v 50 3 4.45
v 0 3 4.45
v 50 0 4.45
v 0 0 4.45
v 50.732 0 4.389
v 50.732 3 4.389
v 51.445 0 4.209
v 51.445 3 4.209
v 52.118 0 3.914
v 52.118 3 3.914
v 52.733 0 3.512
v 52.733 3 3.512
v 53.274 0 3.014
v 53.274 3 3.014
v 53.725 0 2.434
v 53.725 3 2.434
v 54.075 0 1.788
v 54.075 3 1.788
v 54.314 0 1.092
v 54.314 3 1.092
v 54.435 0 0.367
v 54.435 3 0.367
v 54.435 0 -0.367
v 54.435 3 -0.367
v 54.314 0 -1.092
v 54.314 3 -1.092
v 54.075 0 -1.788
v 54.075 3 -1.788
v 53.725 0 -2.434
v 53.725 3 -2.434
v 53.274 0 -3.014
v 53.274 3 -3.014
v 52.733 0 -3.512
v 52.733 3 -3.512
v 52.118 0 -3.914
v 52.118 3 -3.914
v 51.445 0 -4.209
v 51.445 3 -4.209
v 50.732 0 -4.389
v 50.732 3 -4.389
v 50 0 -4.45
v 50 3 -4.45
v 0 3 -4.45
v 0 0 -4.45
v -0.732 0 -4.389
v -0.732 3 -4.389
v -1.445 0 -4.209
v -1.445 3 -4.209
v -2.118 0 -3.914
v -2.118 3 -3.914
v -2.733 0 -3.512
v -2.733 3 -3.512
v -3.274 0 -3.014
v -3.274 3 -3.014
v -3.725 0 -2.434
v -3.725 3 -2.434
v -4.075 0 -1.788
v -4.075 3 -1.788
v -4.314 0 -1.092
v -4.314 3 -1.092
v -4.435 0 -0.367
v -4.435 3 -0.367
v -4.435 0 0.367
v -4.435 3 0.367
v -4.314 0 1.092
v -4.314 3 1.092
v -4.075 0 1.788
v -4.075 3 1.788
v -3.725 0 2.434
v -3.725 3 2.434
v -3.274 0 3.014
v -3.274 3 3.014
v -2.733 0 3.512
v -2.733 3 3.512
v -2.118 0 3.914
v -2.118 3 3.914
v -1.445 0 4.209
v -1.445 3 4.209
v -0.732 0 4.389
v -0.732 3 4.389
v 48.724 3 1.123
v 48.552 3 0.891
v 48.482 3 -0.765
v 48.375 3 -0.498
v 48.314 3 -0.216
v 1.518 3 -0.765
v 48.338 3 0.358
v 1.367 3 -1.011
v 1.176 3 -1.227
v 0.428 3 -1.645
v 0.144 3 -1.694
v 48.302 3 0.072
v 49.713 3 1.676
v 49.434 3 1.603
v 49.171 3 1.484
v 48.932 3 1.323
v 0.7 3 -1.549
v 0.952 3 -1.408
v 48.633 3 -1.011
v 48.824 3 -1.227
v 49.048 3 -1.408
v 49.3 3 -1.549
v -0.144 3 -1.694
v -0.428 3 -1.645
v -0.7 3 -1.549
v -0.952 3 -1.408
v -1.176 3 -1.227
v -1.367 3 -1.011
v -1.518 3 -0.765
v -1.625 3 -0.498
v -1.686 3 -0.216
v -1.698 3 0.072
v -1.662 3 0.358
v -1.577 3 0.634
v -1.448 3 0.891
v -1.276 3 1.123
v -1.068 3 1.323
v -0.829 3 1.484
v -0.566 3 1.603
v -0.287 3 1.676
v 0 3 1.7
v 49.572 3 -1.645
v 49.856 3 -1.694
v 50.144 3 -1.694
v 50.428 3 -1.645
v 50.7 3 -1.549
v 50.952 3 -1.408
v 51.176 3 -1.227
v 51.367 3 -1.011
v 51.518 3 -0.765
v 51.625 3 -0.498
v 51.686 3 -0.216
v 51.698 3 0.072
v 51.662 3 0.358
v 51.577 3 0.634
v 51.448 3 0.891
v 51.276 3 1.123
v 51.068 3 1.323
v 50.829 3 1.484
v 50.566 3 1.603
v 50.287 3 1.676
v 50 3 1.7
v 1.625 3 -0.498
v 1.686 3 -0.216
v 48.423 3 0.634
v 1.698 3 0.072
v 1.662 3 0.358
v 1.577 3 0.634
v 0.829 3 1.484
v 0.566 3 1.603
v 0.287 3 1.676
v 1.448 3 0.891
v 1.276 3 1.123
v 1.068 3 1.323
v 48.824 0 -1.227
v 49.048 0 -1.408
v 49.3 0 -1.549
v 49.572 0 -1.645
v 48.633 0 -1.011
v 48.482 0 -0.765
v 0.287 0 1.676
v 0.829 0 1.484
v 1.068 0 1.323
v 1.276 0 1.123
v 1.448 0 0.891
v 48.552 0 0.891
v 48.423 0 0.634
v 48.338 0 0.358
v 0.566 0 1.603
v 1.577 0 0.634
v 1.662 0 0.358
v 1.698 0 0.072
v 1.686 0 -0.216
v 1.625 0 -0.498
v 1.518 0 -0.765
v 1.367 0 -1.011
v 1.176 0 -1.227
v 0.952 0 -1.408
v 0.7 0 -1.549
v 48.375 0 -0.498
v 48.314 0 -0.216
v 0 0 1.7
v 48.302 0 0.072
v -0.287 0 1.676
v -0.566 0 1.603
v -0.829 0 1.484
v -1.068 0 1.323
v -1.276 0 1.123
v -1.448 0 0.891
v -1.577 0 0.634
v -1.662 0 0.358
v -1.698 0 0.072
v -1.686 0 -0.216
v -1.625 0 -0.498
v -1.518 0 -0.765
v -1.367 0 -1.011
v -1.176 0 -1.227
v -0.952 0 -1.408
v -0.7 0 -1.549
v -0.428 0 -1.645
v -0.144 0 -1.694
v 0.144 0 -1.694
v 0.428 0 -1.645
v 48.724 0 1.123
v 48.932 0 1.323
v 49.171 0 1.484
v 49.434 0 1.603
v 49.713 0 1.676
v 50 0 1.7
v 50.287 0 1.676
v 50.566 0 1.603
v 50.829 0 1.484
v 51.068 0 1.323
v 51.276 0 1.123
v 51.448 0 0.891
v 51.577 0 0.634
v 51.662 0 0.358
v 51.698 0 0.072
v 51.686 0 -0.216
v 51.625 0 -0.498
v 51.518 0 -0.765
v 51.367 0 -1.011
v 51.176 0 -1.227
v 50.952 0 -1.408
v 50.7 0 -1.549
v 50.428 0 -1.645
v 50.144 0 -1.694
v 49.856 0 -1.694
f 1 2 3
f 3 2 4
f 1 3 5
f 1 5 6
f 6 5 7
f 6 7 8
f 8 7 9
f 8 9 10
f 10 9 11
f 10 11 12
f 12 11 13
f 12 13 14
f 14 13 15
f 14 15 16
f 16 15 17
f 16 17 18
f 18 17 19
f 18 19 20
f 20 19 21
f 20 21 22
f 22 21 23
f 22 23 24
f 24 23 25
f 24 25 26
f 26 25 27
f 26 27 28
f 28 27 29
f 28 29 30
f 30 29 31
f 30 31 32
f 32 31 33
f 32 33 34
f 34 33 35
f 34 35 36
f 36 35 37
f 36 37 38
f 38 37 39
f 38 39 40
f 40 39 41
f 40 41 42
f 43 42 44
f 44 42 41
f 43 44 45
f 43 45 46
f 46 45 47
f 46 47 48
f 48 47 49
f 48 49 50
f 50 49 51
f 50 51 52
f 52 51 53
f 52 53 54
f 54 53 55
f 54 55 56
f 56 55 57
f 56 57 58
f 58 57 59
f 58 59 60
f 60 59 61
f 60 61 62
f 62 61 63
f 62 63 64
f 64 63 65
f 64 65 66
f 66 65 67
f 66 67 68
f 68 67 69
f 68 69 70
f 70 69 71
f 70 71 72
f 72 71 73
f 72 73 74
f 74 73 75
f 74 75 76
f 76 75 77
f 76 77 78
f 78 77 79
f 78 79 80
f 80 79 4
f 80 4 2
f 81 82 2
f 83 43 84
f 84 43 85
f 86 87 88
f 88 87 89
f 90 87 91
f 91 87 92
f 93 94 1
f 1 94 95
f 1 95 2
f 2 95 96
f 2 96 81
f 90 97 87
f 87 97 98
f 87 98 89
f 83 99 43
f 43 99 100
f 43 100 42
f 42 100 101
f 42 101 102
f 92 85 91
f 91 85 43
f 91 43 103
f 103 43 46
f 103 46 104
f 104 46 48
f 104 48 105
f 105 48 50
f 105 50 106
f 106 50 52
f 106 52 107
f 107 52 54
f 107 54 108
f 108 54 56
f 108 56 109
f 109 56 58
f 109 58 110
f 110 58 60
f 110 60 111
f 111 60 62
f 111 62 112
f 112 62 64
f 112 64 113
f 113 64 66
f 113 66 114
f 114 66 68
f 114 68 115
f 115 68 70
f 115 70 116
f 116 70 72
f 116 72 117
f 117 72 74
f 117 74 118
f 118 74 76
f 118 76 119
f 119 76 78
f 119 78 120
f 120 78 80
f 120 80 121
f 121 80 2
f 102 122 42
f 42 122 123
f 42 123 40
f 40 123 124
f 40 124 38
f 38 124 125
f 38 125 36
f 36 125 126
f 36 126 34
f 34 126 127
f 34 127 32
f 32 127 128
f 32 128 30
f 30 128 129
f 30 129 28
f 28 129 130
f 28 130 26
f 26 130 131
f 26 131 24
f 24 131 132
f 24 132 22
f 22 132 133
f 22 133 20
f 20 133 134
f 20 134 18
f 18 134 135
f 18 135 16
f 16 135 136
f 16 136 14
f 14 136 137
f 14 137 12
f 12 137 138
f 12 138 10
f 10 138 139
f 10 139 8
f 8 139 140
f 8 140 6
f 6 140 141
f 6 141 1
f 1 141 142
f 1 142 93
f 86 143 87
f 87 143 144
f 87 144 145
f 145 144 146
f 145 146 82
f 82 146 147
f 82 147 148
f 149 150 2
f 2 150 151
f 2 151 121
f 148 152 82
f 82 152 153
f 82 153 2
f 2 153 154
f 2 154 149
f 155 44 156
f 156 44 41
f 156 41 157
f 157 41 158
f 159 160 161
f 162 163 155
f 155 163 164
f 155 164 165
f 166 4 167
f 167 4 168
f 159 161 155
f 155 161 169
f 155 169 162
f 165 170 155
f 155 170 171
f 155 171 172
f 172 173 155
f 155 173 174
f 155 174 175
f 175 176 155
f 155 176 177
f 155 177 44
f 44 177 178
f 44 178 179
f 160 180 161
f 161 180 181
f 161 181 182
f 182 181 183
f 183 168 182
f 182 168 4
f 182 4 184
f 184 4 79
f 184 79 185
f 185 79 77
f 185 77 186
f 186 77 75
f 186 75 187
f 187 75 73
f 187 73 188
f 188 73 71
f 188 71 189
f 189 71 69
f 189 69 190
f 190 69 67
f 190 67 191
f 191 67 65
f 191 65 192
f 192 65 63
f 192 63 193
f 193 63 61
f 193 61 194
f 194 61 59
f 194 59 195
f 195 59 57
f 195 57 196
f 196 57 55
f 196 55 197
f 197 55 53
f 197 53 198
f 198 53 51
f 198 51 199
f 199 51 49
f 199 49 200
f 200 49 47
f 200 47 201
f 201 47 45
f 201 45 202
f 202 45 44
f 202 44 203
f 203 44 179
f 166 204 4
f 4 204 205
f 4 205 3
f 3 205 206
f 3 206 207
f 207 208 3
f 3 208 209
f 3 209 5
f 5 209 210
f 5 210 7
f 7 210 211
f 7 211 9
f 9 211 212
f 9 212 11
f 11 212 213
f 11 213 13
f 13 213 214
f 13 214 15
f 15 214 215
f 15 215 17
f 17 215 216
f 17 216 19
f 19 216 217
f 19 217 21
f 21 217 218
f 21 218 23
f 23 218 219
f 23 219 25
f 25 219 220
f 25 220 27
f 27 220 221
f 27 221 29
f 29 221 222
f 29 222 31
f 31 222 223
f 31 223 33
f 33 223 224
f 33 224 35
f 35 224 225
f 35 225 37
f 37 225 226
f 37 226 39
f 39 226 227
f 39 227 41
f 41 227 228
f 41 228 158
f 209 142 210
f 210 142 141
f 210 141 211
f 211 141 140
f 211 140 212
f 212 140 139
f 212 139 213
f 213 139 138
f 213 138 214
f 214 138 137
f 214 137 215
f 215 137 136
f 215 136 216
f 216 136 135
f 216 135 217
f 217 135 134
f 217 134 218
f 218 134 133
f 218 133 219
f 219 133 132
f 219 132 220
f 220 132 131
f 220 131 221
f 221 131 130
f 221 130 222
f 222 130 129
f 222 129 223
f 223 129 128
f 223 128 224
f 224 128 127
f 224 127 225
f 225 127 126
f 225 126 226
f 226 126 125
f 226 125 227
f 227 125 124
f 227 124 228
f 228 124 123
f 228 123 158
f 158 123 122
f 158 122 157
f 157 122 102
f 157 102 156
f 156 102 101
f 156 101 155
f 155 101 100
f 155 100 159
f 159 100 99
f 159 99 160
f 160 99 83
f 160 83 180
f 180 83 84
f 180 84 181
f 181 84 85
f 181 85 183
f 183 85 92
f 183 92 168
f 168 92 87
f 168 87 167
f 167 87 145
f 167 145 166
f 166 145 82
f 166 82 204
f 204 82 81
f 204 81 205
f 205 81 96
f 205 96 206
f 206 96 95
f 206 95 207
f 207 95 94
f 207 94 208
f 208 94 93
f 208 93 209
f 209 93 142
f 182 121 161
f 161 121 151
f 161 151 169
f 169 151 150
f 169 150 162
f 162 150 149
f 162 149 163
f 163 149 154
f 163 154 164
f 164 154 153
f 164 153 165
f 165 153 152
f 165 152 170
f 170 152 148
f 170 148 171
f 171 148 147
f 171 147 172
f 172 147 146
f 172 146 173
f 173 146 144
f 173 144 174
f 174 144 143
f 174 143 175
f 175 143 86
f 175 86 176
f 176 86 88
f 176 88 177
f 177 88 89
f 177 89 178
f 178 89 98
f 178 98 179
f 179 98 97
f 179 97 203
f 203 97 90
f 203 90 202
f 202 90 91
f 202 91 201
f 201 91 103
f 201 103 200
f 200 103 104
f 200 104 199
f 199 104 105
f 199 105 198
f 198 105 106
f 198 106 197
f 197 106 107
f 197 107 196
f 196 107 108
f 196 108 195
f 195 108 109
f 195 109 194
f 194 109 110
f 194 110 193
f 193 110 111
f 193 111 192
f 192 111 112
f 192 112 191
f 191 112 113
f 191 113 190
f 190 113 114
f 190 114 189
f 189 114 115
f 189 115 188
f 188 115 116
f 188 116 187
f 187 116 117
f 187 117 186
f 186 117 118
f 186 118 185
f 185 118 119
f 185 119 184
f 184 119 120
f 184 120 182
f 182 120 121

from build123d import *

# Parameters (mm, degrees)
SKETCH1_R           = 1.45
BOSS_EXTRUDE1_DEPTH = 3
SKETCH2_R           = 1.7
CUT_EXTRUDE1_DEPTH  = 55.713846511


with BuildPart() as part:
    # Sketch1 → Boss-Extrude1 (new body)
    with BuildSketch(Plane(origin=(0, 0, 0), x_dir=(1, 0, 0), z_dir=(0, 1, 0))):
        with BuildLine():
            ThreePointArc((0, 4.45), (-4.45, 0), (0, -4.45))
            Line((0, -4.45), (50, -4.45))
            ThreePointArc((50, -4.45), (54.45, 0), (50, 4.45))
            Line((50, 4.45), (0, 4.45))
        make_face()
        with Locations(Location((0, 0, 0), (0, 0, 270))):
            Circle(SKETCH1_R, mode=Mode.SUBTRACT)
        with Locations(Location((50, 0, 0), (0, 0, 270))):
            Circle(SKETCH1_R, mode=Mode.SUBTRACT)
    extrude(amount=BOSS_EXTRUDE1_DEPTH)

    # Sketch2 → Cut-Extrude1 (cut, through all)
    with BuildSketch(Plane(origin=(0, 3, 0), x_dir=(1, 0, 0), z_dir=(0, 1, 0))):
        with Locations(Location((0, 0, 0), (0, 0, 270))):
            Circle(SKETCH2_R)
        with Locations(Location((50, 0, 0), (0, 0, 270))):
            Circle(SKETCH2_R)
    extrude(amount=-CUT_EXTRUDE1_DEPTH, mode=Mode.SUBTRACT)


solid = part.part
